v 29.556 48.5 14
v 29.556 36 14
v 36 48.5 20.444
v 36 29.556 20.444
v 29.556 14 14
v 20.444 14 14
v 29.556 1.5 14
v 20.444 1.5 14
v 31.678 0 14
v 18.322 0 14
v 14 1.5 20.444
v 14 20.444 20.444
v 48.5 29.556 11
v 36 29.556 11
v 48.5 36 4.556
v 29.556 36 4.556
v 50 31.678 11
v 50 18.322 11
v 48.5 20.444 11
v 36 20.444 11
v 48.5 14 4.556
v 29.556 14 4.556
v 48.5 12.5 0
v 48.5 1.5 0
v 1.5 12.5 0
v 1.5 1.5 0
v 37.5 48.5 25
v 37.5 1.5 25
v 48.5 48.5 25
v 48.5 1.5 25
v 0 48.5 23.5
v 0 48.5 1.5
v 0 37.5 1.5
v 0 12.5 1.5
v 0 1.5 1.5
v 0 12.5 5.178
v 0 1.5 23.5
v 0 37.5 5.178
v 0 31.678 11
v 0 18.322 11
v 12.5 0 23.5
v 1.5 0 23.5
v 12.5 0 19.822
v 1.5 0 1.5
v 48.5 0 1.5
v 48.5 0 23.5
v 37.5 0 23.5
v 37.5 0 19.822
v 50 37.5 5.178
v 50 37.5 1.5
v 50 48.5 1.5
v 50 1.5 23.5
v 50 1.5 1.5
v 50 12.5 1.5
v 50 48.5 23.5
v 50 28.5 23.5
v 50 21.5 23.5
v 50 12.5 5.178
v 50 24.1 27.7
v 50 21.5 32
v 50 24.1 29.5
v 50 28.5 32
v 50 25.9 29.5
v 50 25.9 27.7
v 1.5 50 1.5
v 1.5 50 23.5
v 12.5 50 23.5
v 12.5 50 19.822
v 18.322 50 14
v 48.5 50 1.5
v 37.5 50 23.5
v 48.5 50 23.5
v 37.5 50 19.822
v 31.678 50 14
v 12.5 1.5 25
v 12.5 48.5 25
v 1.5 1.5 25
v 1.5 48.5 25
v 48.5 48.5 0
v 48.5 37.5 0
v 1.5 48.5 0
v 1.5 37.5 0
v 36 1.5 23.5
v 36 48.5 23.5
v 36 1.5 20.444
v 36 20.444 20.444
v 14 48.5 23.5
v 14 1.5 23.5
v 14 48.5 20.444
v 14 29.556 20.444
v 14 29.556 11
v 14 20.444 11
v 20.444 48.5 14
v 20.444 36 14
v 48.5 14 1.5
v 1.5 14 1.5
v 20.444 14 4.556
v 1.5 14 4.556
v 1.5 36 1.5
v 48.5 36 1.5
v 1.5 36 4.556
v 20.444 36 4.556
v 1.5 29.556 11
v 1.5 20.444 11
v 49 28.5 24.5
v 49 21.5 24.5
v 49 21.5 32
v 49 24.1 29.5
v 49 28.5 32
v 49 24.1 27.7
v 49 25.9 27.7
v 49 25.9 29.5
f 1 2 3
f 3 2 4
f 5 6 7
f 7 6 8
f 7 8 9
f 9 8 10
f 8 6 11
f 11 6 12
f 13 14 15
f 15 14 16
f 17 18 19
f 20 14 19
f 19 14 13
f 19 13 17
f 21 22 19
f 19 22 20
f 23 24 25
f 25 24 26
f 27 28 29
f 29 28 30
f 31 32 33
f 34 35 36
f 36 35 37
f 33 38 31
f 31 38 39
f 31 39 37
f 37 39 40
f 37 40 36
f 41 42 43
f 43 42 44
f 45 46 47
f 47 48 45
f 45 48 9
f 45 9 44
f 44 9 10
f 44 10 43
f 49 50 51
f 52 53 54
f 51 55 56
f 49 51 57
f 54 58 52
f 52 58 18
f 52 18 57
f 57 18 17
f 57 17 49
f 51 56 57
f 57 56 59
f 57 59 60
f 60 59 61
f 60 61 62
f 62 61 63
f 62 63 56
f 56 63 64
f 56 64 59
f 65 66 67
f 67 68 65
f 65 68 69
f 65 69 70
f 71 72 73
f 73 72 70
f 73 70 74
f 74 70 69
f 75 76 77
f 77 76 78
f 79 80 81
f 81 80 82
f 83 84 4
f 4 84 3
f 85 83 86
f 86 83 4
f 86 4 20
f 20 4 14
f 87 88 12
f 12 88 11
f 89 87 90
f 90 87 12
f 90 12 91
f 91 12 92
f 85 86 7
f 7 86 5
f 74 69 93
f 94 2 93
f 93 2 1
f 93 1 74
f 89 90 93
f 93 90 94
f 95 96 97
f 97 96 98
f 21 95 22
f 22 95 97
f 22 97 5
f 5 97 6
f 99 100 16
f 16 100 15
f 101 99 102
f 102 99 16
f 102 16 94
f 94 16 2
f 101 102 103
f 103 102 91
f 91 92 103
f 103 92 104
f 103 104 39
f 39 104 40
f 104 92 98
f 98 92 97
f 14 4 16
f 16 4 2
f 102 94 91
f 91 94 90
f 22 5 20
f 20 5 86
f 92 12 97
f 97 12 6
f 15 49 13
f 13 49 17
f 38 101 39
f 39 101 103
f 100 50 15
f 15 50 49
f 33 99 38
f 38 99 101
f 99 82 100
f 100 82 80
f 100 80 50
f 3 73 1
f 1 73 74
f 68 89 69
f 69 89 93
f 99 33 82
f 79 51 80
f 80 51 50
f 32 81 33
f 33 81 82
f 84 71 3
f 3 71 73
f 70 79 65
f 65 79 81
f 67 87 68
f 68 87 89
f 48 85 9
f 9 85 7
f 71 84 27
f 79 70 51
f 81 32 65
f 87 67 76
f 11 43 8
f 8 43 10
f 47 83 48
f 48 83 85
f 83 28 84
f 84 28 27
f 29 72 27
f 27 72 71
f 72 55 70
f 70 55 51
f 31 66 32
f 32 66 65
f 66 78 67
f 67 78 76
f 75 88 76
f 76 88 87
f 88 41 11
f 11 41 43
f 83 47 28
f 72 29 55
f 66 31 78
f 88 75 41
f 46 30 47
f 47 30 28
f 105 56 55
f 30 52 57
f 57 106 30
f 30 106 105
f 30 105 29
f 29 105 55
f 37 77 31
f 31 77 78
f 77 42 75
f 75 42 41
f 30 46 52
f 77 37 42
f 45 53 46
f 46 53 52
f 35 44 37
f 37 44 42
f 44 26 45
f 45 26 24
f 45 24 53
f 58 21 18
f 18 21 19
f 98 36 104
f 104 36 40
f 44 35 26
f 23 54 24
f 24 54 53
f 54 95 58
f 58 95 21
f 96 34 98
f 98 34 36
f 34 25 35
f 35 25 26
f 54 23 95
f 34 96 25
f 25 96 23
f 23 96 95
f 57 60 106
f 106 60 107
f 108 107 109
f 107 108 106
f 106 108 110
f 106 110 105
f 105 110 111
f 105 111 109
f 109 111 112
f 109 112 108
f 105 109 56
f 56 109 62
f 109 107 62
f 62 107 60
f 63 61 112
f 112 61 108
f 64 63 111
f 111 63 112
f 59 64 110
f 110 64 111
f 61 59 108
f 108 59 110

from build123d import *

# Parameters (mm, degrees)
SKETCH1_W                = 50
SKETCH1_H                = 50
BOSS_EXTRUDE1_DEPTH      = 25
CUT_EXTRUDE1_DEPTH       = 76
CUT_EXTRUDE2_DEPTH       = 76
CUT_EXTRUDE3_DEPTH       = 76
CHAMFER1_SIZE            = 1.5
BOSS_EXTRUDE2_DEPTH      = 7
BOSS_EXTRUDE2_DEPTH_BACK = 10
SKETCH5_W                = 1
SKETCH5_H                = 7
SKETCH6_W                = 1.8
SKETCH6_H                = 1.8
CUT_EXTRUDE5_DEPTH       = 78.614431648


with BuildPart() as part:
    # Sketch1 → Boss-Extrude1 (new body)
    with BuildSketch(Plane.XY):
        with Locations((25, 25)):
            Rectangle(SKETCH1_W, SKETCH1_H)
    extrude(amount=BOSS_EXTRUDE1_DEPTH)

    # Sketch2 → Cut-Extrude1 (cut, through all)
    with BuildSketch(Plane.XZ):
        Polygon((29.556349186, 36), (20.443650814, 36), (14, 29.556349186), (14, 20.443650814), (20.443650814, 14), (29.556349186, 14), (36, 20.443650814), (36, 29.556349186), align=None)
    extrude(amount=-CUT_EXTRUDE1_DEPTH, mode=Mode.SUBTRACT)

    # Sketch3 → Cut-Extrude2 (cut, through all)
    with BuildSketch(Plane.ZY):
        Polygon((4.556349186, 14), (11, 20.443650814), (11, 29.556349186), (4.556349186, 36), (-4.556349186, 36), (-11, 29.556349186), (-11, 20.443650814), (-4.556349186, 14), align=None)
    extrude(amount=-CUT_EXTRUDE2_DEPTH, mode=Mode.SUBTRACT)

    # Sketch4 → Cut-Extrude3 (cut, through all)
    with BuildSketch(Plane.XY.offset(25)):
        Polygon((29.556349186, 36), (20.443650814, 36), (14, 29.556349186), (14, 20.443650814), (20.443650814, 14), (29.556349186, 14), (36, 20.443650814), (36, 29.556349186), align=None)
    extrude(amount=-CUT_EXTRUDE3_DEPTH, mode=Mode.SUBTRACT)

    # Chamfer1
    chamfer1_edges = [part.edges().sort_by_distance(p)[0] for p in [
        (50, 25, 25),
        (43, 50, 25),
        (43, 0, 25),
        (7, 50, 25),
        (14, 25, 25),
        (36, 25, 25),
        (36, 50, 22.721825407),
        (14, 50, 22.721825407),
        (36, 0, 22.721825407),
        (14, 0, 22.721825407),
        (17.221825407, 0, 17.221825407),
        (32.778174593, 0, 17.221825407),
        (32.778174593, 50, 17.221825407),
        (17.221825407, 50, 17.221825407),
        (0, 25, 25),
        (25, 50, 0),
        (50, 7, 0),
        (0, 7, 0),
        (50, 43, 0),
        (25, 36, 0),
        (25, 14, 0),
        (25, 0, 0),
        (0, 43, 0),
        (50, 14, 2.278174593),
        (50, 36, 2.278174593),
        (50, 32.778174593, 7.778174593),
        (50, 17.221825407, 7.778174593),
        (0, 14, 2.278174593),
        (0, 17.221825407, 7.778174593),
        (0, 32.778174593, 7.778174593),
        (0, 36, 2.278174593),
        (7, 0, 25),
        (0, 50, 12.5),
        (50, 50, 12.5),
        (50, 0, 12.5),
        (0, 0, 12.5),
    ]]
    chamfer(chamfer1_edges, length=CHAMFER1_SIZE)

    # Sketch5 → Boss-Extrude2 (add, two sides: drawn at the far end of the back side and taken through both)
    with BuildSketch(Plane.XY.offset(25).offset(-BOSS_EXTRUDE2_DEPTH_BACK)):
        with Locations((49.5, 25)):
            Rectangle(SKETCH5_W, SKETCH5_H)
    extrude(amount=BOSS_EXTRUDE2_DEPTH + BOSS_EXTRUDE2_DEPTH_BACK)

    # Sketch6 → Cut-Extrude5 (cut, through all)
    with BuildSketch(Plane(origin=(50, 0, 0), x_dir=(0, 0, -1), z_dir=(1, 0, 0))):
        with Locations((-28.6, 25)):
            Rectangle(SKETCH6_W, SKETCH6_H)
    extrude(amount=-CUT_EXTRUDE5_DEPTH, mode=Mode.SUBTRACT)


solid = part.part
